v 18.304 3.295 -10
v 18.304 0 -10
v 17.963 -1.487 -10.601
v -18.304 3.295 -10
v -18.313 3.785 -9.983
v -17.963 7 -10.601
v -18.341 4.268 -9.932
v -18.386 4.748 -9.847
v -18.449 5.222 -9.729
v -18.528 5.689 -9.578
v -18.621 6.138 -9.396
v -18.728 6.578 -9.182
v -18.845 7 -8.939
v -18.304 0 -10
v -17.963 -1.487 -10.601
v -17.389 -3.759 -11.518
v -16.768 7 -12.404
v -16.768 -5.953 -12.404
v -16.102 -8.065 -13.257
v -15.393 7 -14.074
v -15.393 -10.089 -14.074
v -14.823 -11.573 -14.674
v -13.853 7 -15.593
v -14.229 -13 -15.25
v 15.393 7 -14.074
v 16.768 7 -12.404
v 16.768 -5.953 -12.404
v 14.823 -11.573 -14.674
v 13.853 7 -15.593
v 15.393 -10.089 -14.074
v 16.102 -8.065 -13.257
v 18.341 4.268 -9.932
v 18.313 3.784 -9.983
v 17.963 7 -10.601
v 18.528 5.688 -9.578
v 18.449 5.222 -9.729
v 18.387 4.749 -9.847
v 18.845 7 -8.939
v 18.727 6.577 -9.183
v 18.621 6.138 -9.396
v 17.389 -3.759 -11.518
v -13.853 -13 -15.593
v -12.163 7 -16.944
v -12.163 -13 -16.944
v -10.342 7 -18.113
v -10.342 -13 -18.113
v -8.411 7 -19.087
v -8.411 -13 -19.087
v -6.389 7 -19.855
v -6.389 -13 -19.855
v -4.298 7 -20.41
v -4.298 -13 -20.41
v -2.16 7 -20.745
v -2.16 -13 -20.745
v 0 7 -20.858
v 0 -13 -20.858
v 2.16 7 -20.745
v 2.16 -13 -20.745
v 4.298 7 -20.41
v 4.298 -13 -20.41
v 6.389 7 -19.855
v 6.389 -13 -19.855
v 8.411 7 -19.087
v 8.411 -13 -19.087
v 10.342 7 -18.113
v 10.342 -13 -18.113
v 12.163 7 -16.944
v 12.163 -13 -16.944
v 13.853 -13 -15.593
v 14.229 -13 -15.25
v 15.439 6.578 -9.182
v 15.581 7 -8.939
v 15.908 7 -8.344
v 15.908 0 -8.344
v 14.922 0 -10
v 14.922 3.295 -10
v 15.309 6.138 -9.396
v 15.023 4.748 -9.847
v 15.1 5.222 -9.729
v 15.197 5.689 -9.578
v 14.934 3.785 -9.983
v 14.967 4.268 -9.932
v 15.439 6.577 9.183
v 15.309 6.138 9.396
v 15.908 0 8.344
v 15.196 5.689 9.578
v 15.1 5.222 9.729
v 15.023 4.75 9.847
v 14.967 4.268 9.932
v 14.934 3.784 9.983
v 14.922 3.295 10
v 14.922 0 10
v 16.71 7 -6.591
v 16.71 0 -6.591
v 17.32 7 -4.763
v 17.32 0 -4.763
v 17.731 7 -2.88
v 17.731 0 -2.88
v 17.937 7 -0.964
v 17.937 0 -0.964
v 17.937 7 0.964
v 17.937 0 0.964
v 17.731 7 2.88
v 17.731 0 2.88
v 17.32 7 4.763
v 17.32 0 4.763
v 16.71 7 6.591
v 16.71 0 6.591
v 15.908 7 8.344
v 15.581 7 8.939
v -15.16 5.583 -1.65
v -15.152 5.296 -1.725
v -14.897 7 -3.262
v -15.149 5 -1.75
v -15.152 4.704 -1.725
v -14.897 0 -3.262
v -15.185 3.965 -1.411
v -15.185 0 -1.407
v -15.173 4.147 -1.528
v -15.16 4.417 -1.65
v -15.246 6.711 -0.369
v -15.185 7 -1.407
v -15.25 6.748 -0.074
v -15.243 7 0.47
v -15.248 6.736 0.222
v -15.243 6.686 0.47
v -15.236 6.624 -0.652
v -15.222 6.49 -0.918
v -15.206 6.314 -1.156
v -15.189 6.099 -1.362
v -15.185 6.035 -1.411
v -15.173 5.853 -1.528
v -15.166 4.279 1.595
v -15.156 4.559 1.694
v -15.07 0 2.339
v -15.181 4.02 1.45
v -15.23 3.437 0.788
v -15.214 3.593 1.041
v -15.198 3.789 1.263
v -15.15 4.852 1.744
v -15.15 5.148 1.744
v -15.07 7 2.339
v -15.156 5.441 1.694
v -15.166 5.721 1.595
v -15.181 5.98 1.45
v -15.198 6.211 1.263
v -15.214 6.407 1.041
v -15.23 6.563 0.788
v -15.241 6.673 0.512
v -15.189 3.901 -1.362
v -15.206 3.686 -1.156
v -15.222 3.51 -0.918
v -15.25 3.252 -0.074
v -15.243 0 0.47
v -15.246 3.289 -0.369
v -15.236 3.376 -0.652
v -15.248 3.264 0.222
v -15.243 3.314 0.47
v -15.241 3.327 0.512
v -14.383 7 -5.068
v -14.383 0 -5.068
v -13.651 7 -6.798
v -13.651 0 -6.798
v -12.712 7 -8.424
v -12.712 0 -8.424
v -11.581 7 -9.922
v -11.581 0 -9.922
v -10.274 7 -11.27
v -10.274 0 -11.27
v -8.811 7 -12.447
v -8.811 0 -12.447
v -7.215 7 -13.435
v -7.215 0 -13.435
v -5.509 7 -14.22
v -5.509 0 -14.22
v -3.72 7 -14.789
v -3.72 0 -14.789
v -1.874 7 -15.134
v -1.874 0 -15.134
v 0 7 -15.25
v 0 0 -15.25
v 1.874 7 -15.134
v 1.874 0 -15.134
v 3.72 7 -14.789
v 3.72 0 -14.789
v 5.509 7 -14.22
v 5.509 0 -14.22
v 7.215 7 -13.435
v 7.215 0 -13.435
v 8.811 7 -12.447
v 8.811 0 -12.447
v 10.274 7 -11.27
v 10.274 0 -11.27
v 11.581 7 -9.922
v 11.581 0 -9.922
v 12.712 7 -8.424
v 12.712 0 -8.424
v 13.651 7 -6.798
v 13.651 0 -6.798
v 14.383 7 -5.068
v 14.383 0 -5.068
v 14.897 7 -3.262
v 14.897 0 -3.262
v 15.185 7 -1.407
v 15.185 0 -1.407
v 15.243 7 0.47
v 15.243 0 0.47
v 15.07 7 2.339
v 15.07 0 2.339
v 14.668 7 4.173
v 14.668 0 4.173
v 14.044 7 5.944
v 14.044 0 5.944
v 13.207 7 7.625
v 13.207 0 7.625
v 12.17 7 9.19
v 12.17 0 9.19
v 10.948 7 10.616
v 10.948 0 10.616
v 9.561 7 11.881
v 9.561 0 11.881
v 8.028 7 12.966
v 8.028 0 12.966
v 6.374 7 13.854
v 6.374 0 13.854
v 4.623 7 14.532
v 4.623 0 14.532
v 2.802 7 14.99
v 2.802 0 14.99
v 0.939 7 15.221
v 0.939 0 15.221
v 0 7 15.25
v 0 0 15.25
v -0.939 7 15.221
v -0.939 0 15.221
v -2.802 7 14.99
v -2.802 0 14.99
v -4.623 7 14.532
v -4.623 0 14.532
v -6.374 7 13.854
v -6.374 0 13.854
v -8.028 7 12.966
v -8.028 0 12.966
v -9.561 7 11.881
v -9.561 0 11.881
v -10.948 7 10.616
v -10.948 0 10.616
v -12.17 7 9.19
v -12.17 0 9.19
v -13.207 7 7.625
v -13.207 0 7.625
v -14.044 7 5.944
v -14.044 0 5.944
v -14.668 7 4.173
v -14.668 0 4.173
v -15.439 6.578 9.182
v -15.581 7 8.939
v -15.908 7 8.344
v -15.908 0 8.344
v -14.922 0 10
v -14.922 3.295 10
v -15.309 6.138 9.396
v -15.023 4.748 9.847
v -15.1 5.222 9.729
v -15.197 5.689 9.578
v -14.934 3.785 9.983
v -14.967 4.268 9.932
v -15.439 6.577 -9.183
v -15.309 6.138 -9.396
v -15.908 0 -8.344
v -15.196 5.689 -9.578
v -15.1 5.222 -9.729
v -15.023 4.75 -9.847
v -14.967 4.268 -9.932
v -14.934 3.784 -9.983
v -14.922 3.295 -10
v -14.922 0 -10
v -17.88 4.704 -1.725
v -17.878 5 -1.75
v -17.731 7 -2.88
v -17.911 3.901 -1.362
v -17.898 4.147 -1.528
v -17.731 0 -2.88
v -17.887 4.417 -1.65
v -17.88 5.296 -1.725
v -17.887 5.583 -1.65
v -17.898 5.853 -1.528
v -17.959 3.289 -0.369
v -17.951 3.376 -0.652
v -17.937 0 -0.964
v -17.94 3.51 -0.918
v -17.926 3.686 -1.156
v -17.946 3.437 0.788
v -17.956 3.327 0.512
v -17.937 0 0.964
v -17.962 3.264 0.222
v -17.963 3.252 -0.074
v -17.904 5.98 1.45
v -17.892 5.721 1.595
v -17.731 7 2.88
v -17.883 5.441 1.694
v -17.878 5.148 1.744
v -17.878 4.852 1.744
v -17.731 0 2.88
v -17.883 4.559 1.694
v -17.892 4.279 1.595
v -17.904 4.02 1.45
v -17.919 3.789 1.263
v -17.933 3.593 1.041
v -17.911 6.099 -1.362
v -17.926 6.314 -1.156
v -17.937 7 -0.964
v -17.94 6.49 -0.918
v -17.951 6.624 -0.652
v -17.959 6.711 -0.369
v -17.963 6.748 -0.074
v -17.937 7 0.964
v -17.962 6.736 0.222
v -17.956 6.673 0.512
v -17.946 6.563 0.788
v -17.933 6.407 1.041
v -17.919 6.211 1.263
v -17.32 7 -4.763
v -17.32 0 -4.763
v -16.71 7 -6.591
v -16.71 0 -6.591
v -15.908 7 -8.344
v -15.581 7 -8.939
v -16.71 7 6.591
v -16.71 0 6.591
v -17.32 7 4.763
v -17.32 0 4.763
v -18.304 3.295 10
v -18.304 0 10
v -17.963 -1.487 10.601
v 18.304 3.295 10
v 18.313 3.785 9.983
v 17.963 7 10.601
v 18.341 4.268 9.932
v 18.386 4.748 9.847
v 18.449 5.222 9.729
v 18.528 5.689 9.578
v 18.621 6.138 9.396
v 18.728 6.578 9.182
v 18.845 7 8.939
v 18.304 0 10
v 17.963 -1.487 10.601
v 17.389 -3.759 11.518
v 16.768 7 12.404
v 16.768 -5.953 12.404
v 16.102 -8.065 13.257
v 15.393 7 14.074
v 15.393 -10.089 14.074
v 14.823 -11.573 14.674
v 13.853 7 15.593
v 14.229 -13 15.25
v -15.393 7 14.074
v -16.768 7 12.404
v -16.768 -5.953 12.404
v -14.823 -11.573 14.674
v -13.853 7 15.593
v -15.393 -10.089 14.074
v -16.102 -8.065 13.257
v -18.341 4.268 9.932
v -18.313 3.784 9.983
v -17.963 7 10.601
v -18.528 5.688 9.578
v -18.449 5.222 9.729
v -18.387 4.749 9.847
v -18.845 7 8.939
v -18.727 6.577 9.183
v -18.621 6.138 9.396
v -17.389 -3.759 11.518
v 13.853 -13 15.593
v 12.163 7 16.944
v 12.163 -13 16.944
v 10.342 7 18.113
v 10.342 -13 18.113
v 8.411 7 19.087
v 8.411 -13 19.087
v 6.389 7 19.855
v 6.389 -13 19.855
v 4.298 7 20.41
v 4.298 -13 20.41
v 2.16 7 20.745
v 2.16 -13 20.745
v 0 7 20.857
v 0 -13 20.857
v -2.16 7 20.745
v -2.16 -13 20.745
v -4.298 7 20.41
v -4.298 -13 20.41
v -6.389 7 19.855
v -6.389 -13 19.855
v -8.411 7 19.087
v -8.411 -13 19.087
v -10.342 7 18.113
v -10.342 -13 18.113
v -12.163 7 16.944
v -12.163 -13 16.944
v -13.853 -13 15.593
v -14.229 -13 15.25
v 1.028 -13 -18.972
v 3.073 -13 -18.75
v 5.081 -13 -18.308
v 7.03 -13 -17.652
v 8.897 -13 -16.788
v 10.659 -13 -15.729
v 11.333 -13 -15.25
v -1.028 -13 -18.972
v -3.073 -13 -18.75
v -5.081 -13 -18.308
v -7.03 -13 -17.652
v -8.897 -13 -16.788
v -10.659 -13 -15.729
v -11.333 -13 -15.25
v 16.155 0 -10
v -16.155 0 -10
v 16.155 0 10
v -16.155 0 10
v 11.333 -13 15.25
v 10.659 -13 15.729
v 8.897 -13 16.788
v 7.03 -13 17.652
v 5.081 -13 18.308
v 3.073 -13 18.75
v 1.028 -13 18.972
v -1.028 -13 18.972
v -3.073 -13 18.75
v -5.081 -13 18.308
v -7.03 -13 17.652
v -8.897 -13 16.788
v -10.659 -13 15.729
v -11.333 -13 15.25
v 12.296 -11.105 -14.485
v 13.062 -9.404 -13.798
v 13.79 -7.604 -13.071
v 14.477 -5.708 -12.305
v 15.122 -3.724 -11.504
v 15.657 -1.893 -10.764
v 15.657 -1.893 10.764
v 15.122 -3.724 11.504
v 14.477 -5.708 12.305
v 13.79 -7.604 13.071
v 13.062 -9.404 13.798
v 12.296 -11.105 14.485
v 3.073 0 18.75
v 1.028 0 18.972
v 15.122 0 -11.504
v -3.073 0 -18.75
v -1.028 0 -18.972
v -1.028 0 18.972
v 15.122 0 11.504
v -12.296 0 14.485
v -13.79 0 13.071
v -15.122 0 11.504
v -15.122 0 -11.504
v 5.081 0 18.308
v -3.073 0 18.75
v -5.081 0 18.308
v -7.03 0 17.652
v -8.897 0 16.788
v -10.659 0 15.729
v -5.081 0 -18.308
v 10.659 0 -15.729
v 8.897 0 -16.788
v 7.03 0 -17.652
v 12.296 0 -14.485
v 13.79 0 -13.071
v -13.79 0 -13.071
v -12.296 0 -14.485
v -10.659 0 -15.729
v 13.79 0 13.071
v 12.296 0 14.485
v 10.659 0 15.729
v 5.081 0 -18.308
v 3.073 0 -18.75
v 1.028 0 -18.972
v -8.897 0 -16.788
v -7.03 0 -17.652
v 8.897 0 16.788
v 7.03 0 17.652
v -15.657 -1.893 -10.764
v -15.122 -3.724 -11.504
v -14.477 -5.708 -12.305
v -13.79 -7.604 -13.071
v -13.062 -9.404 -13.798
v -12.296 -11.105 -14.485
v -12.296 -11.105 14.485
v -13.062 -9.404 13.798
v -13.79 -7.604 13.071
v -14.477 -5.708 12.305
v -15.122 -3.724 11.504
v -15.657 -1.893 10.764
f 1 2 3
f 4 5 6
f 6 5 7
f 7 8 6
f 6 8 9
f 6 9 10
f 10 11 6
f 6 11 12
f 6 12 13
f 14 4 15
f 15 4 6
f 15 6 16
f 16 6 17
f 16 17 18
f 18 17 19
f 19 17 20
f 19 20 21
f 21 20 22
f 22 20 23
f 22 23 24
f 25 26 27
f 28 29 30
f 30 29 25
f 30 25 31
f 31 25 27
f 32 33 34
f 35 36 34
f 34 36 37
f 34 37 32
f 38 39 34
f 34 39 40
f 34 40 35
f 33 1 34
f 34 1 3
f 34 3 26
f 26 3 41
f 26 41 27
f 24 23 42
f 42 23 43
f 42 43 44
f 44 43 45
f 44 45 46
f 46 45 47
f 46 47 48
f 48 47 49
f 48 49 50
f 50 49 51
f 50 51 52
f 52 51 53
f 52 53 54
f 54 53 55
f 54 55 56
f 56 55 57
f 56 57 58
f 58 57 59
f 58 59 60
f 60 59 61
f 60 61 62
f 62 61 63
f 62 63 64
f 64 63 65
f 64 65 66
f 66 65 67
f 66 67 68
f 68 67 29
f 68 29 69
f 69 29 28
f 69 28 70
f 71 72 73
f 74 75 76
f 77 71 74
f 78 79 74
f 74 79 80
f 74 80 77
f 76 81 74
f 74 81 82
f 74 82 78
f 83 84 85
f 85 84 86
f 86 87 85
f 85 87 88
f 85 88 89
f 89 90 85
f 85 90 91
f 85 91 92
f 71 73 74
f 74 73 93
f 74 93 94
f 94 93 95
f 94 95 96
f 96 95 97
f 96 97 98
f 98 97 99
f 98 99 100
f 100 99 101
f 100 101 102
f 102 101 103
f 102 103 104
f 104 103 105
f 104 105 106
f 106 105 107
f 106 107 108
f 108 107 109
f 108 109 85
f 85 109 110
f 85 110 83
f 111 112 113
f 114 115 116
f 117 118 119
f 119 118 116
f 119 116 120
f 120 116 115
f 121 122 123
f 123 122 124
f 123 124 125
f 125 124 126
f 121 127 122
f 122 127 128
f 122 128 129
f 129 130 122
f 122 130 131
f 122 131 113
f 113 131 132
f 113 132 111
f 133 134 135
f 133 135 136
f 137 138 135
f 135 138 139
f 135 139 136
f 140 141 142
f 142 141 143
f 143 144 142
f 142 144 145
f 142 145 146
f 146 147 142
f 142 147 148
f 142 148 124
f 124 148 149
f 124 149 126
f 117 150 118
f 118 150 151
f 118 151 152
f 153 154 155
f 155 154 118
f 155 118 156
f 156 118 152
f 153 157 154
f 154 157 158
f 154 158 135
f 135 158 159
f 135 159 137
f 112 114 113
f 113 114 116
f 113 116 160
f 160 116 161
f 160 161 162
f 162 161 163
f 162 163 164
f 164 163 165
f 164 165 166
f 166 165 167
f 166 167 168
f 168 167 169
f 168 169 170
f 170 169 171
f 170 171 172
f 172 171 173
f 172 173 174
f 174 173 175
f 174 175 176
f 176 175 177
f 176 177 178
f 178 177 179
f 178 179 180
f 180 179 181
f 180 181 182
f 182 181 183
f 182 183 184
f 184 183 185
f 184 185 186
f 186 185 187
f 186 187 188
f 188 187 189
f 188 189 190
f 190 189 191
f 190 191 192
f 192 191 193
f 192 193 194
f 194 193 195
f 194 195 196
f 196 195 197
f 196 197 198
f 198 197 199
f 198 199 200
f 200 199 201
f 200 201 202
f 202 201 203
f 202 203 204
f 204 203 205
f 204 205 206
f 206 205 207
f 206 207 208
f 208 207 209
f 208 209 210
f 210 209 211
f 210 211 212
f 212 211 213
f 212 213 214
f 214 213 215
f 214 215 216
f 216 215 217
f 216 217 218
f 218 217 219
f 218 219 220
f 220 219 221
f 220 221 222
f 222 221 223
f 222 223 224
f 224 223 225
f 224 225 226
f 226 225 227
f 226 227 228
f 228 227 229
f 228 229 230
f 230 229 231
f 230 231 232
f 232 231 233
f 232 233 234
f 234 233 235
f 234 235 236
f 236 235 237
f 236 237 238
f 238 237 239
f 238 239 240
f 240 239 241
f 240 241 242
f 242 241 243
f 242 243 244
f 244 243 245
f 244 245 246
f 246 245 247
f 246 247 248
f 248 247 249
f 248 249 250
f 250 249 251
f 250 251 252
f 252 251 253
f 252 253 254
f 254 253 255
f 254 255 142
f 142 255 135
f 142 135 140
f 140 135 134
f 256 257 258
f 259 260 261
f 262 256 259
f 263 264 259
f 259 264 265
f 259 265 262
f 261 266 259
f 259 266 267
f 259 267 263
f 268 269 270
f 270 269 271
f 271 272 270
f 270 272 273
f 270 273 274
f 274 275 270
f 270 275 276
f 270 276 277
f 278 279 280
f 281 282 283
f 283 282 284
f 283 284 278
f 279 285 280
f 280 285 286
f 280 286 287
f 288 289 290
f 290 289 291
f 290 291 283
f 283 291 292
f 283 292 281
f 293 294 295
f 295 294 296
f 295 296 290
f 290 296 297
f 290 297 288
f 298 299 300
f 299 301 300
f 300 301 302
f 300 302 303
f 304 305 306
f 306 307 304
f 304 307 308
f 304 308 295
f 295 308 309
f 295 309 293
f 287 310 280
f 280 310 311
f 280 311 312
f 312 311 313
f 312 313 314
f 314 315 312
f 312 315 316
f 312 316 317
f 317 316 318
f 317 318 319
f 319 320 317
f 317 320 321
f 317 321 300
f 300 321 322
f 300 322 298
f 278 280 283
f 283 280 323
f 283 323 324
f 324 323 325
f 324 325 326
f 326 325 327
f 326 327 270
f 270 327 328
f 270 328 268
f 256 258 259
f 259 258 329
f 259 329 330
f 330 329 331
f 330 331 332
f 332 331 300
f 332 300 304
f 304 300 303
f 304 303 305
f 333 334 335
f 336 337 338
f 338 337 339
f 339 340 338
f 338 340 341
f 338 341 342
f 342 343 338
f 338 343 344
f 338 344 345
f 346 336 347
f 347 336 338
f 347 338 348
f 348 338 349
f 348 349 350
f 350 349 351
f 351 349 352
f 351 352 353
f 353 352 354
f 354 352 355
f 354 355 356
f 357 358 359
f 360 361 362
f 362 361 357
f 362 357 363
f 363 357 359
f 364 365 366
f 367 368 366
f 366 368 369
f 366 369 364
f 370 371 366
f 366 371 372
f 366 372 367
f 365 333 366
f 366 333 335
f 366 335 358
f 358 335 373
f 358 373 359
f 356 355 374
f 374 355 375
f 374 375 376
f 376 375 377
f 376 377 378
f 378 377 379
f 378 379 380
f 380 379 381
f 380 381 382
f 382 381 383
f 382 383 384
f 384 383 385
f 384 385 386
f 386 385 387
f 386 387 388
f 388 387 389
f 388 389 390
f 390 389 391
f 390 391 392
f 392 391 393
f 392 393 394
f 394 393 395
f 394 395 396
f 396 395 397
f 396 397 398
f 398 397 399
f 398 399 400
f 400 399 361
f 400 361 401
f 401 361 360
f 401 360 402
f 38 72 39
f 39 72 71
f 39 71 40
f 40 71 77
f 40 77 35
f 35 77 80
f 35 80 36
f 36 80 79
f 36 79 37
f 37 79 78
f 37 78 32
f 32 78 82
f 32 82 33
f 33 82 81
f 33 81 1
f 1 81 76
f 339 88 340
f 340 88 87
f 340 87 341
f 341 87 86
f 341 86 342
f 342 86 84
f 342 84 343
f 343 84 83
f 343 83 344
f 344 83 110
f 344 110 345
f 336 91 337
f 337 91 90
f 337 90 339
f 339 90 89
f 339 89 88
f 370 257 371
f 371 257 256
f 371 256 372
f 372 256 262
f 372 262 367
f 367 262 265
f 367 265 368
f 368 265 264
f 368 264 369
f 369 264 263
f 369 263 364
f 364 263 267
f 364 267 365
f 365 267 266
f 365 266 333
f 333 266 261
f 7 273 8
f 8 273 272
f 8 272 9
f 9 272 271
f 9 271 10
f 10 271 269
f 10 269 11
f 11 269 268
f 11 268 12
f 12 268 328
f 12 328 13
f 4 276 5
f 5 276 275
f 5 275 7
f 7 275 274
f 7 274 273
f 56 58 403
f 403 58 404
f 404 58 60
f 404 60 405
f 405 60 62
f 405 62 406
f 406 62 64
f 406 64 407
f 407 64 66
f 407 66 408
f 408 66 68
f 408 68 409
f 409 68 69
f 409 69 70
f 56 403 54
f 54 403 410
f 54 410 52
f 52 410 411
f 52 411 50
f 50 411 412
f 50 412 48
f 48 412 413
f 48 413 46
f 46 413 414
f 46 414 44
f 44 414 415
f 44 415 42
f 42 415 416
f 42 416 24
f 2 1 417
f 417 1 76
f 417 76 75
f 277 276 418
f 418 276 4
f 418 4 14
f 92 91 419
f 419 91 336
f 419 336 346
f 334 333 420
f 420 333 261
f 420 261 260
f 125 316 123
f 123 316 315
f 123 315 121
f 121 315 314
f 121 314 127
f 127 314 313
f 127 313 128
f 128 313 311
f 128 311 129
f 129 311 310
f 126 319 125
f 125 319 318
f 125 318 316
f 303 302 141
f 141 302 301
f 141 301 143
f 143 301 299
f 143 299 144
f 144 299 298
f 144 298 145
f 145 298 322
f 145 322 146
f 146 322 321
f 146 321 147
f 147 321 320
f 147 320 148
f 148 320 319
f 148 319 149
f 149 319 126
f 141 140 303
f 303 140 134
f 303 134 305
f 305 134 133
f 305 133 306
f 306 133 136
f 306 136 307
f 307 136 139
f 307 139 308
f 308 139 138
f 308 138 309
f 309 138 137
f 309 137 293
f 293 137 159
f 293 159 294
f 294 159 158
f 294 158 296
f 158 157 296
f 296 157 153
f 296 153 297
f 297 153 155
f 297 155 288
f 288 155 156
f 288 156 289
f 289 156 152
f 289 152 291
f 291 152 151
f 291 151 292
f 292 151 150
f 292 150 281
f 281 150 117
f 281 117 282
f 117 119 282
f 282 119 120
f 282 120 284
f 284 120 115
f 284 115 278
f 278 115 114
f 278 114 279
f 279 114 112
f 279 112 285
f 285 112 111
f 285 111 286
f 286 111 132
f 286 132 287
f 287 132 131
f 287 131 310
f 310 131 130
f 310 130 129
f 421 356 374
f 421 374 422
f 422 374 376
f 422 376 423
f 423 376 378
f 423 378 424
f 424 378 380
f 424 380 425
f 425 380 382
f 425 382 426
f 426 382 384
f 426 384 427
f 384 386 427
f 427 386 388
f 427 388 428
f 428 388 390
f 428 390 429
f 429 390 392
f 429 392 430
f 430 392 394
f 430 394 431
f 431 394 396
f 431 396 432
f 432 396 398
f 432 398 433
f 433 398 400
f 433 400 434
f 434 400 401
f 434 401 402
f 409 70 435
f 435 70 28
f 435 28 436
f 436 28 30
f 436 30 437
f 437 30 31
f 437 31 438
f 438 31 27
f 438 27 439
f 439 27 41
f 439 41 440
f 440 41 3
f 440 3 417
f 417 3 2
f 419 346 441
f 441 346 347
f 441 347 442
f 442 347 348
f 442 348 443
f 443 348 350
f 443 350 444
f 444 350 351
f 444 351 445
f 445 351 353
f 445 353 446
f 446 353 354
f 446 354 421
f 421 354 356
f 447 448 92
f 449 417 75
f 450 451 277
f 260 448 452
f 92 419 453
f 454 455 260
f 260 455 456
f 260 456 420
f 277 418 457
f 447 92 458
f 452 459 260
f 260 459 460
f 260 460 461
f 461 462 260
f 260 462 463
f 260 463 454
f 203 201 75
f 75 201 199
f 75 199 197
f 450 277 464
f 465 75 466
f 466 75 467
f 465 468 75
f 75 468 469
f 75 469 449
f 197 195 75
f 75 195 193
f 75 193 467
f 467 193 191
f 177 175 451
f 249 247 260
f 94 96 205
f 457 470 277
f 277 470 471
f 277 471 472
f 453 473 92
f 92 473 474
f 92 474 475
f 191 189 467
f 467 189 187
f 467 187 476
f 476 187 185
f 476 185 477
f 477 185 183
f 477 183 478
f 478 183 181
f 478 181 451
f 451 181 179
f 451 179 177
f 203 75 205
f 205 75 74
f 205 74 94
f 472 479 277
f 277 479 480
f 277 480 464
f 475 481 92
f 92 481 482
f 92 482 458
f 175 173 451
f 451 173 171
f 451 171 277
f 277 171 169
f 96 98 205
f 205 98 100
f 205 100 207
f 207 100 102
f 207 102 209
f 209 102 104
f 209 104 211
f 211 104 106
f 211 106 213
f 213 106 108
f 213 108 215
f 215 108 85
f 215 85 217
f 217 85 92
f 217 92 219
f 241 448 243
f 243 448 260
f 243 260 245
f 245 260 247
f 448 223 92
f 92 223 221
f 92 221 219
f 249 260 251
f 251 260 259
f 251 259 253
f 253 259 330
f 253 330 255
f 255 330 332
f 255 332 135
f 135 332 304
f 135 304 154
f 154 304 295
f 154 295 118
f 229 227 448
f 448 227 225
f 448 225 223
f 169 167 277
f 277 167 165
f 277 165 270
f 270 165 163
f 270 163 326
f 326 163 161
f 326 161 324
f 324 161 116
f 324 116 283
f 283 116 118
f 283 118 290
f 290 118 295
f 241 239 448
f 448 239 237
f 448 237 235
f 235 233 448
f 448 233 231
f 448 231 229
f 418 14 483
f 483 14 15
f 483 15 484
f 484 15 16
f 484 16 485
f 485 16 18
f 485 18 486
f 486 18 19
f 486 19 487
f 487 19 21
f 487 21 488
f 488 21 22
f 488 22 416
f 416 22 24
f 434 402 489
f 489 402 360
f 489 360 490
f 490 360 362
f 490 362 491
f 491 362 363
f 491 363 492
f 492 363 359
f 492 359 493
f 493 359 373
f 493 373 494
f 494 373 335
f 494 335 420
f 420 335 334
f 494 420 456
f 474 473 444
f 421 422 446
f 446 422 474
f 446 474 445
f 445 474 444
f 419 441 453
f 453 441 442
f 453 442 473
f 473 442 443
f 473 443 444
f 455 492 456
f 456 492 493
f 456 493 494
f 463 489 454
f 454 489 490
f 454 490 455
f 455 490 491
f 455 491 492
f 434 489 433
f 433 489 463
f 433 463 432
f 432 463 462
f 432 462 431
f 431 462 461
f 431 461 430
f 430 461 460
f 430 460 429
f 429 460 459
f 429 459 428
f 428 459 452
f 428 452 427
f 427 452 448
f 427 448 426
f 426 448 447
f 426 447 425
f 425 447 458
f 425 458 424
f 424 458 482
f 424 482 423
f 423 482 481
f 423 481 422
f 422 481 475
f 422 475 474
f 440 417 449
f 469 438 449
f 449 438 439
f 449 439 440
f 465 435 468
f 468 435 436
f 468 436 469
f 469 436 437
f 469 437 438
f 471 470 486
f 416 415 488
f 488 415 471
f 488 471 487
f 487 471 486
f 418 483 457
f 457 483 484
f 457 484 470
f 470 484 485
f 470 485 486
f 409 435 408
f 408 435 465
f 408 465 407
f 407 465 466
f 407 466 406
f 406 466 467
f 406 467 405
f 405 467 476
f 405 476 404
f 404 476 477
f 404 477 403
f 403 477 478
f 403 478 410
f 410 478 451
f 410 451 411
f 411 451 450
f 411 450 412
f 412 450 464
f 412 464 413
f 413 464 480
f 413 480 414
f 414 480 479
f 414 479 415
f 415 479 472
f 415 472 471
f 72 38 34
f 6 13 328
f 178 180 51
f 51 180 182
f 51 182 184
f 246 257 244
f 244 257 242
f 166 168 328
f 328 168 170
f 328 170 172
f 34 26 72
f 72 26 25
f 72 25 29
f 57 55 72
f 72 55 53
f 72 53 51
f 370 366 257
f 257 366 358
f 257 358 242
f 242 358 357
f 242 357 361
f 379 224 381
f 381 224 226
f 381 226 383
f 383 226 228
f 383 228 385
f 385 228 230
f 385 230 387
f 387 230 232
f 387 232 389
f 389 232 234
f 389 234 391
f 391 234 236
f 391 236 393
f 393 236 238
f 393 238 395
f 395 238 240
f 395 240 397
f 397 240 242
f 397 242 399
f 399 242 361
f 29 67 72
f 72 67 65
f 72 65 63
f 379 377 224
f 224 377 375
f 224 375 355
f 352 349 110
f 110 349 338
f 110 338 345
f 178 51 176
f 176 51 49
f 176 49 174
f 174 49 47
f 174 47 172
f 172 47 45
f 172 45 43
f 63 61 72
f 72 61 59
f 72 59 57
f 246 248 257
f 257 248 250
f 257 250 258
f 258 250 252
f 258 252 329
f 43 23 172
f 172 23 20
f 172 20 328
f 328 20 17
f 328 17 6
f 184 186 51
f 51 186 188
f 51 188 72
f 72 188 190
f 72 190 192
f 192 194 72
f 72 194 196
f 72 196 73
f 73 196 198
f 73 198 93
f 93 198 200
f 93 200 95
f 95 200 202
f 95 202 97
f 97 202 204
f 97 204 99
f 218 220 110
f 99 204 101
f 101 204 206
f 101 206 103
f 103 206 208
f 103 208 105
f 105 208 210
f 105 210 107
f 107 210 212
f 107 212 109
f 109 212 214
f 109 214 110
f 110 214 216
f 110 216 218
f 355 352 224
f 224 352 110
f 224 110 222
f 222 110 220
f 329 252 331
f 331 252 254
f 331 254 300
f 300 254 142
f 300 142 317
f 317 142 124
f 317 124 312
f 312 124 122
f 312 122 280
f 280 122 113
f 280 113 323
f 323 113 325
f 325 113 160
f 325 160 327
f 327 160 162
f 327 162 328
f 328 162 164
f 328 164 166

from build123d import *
from build123d.topology import SkipClean

# Parameters (mm, degrees)
ESQUISSE1_R                   = 17.963
ESQUISSE1_R_2                 = 15.25
BOSS_EXTRU_1_DEPTH            = 40.144083067
CHANFREIN1_SIZE               = 2
ESQUISSE7_R                   = 17.963
BOSS_EXTRU_4_DEPTH            = 25
ESQUISSE8_R                   = 15.25
ENL_V_MAT_EXTRU_3_DEPTH       = 48.506695773
BOSS_EXTRU_5_DEPTH            = 130
ENL_V_MAT_EXTRU_8_DEPTH       = 134.304428503
ENL_V_MAT_EXTRU_8_DEPTH_BACK  = 134.304428503
ENL_V_MAT_EXTRU_9_DEPTH       = 130
ENL_V_MAT_EXTRU_9_DEPTH_BACK  = 130
ESQUISSE21_R                  = 17.963
ESQUISSE21_R_2                = 15.25
BOSS_EXTRU_6_DEPTH            = 65.144083
ESQUISSE22_R                  = 1.75
ENL_V_MAT_EXTRU_10_DEPTH      = 64
ESQUISSE23_R                  = 1.75
ENL_V_MAT_EXTRU_11_DEPTH      = 64
R_P_TITION_LIN_AIRE2_COUNT    = 2
R_P_TITION_LIN_AIRE2_PITCH    = 16
CONG_2_R                      = 7
ESQUISSE11_R                  = 1.5
ESQUISSE24_R                  = 20.85750055
BOSS_EXTRU_10_DEPTH           = 13
ESQUISSE26_R                  = 15.25
ENL_V_MAT_EXTRU_12_DEPTH      = 134.304428631
ENL_V_MAT_EXTRU_13_DEPTH      = 134.304428631
ENL_V_MAT_EXTRU_13_DEPTH_BACK = 134.304428631
ESQUISSE29_R                  = 19
ENL_V_MAT_EXTRU_14_DEPTH      = 13
ESQUISSE31_R                  = 30.102182373
ENL_V_MAT_EXTRU_15_DEPTH      = 123


with BuildPart() as part:
    # Esquisse1 → Boss.-Extru.1 (new body)
    with BuildSketch(Plane(origin=(0, 0, 0), x_dir=(1, 0, 0), z_dir=(0, 1, 0))):
        with Locations(Location((0, 0, 0), (0, 0, 270))):
            Circle(ESQUISSE1_R)
        with Locations(Location((0, 0, 0), (0, 0, 270))):
            Circle(ESQUISSE1_R_2, mode=Mode.SUBTRACT)
    extrude(amount=BOSS_EXTRU_1_DEPTH)

    # Chanfrein1
    chanfrein1_edges = [part.edges().sort_by_distance(p)[0] for p in [
        (0, 0, -17.963),
    ]]
    chamfer(chanfrein1_edges, length=CHANFREIN1_SIZE)

    # Esquisse7 → Boss.-Extru.4 (add)
    with BuildSketch(Plane(origin=(0, 40.144083067, 0), x_dir=(1, 0, 0), z_dir=(0, 1, 0))):
        with Locations(Location((0, 0, 0), (0, 0, 270))):
            Circle(ESQUISSE7_R)
    extrude(amount=BOSS_EXTRU_4_DEPTH)

    # Esquisse8 → Enlèv. mat.-Extru.3 (cut, through all)
    with BuildSketch(Plane.XZ.offset(-40.144083067)):
        with Locations(Location((0, 0, 0), (0, 0, 270))):
            Circle(ESQUISSE8_R)
    extrude(amount=-ENL_V_MAT_EXTRU_3_DEPTH, mode=Mode.SUBTRACT)

    # Esquisse10 → Boss.-Extru.5 (add)
    with BuildSketch(Plane(origin=(0, 0, 0), x_dir=(1, 0, 0), z_dir=(0, 1, 0))):
        with BuildLine():
            Line((20.85750055, 0), (17.963, 0))
            ThreePointArc((17.963, 0), (0, -17.963), (-17.963, 0))
            Line((-17.963, 0), (-20.85750055, 0))
            ThreePointArc((-20.85750055, 0), (0, -20.85750055), (20.85750055, 0))
        make_face()
    boss_extru_5 = extrude(amount=BOSS_EXTRU_5_DEPTH)

    # Symétrie3: Boss.-Extru.5 across plane
    with SkipClean():  # the faces are left unmerged after this step: merging them gives an invalid solid
        add(boss_extru_5.mirror(Plane.XY))

    # Esquisse18 → Enlèv. mat.-Extru.8 (cut, two sides: drawn at the far end of the back side and taken through both)
    with SkipClean():  # the faces are left unmerged after this step: merging them gives an invalid solid
        with BuildSketch(Plane(origin=(0, 0, 0), x_dir=(0, 0, -1), z_dir=(1, 0, 0)).offset(-ENL_V_MAT_EXTRU_8_DEPTH_BACK)):
            Polygon((-10, 121.154286311), (-13.911254963, 130), (13.911254963, 130), (10, 121.154286311), (10, 61.262819373), (-10, 61.262819373), align=None)
        extrude(amount=ENL_V_MAT_EXTRU_8_DEPTH + ENL_V_MAT_EXTRU_8_DEPTH_BACK, mode=Mode.SUBTRACT)

    # Esquisse20 → Enlèv. mat.-Extru.9 (cut, two sides: drawn at the far end of the back side and taken through both)
    with BuildSketch(Plane(origin=(0, 0, 0), x_dir=(0, 0, -1), z_dir=(1, 0, 0)).offset(-ENL_V_MAT_EXTRU_9_DEPTH_BACK)):
        Polygon((-5, 61.262819373), (5, 61.262819373), (5, 10.002819373), (10, 10.002819373), (10, 0), (-10, 0), (-10, 10.002819373), (-5, 10.002819373), align=None)
    extrude(amount=ENL_V_MAT_EXTRU_9_DEPTH + ENL_V_MAT_EXTRU_9_DEPTH_BACK, mode=Mode.SUBTRACT)


with BuildPart() as enl_v_mat_extru_9_piece_1:
    # of the separate pieces the step leaves, piece 1, a body of its own (enl_v_mat_extru_9_pieces)
    add(part.part.solids().sort_by_distance((-18.303970313, 0, -10))[0])



with BuildPart() as enl_v_mat_extru_9_piece_2:
    # of the separate pieces the step leaves, piece 2, a body of its own (enl_v_mat_extru_9_pieces)
    add(part.part.solids().sort_by_distance((-15.540666477, 130, 13.911254963))[0])


with BuildPart() as enl_v_mat_extru_9_piece_1_1:
    with SkipClean():  # the faces are left unmerged after this step: merging them gives an invalid solid
        add(enl_v_mat_extru_9_piece_1.part)

        add(enl_v_mat_extru_9_piece_2.part)  # Boss.-Extru.6 merges Enlèv. mat.-Extru.9 piece 2
        # Esquisse21 → Boss.-Extru.6 (add)
        with BuildSketch(Plane(origin=(0, 0, 0), x_dir=(1, 0, 0), z_dir=(0, 1, 0))):
            Circle(ESQUISSE21_R)
            with Locations(Location((0, 0, 0), (0, 0, 90))):
                Circle(ESQUISSE21_R_2, mode=Mode.SUBTRACT)
        extrude(amount=BOSS_EXTRU_6_DEPTH)

    # Esquisse22 → Enlèv. mat.-Extru.10 (cut)
    with SkipClean():  # the faces are left unmerged after this step: merging them gives an invalid solid
        with BuildSketch(Plane(origin=(0, 0, 0), x_dir=(0, 0, -1), z_dir=(1, 0, 0))):
            with Locations((0, 5)):
                Circle(ESQUISSE22_R)
        enl_v_mat_extru_10 = extrude(amount=-ENL_V_MAT_EXTRU_10_DEPTH, mode=Mode.SUBTRACT)

    # Esquisse23 → Enlèv. mat.-Extru.11 (cut)
    with SkipClean():  # the faces are left unmerged after this step: merging them gives an invalid solid
        with BuildSketch(Plane(origin=(0, 0, 0), x_dir=(0, 0, -1), z_dir=(1, 0, 0))):
            with Locations(Location((0, 13.3, 0), (0, 0, 180))):
                Circle(ESQUISSE23_R)
        extrude(amount=ENL_V_MAT_EXTRU_11_DEPTH, mode=Mode.SUBTRACT)

    # Répétition linéaire2: Enlèv. mat.-Extru.10 ×2
    with SkipClean():  # the faces are left unmerged after this step: merging them gives an invalid solid
        with Locations(*[(0, i * R_P_TITION_LIN_AIRE2_PITCH, 0) for i in range(1, R_P_TITION_LIN_AIRE2_COUNT)]):
            add(enl_v_mat_extru_10, mode=Mode.SUBTRACT)

    # Congé2
    # the kernel refuses this fillet: 7 mm, written as the material it adds along each edge
    with BuildSketch(Plane(origin=(-35.074480144, 61.262819373, 10), x_dir=(0, 1, 0), z_dir=(1, 0, 0))) as cong_2_piece_1_section:
        with BuildLine():
            CenterArc((6.708203932, -7), CONG_2_R, 90, 73.398450401)
            Line((0, -5), (-0.134164079, -4.96))
            ThreePointArc((-0.134164079, -4.96), (-0.14, -2.5), (-0.14, 0))
            Line((-0.14, 0), (0, 0.14))
            Line((0, 0.14), (6.708203932, 0.14))
            Line((6.708203932, 0.14), (6.708203932, 0))
        make_face()
    cong_2_piece_1 = extrude(amount=36.922879903, mode=Mode.PRIVATE)
    cong_2_piece_1 = cong_2_piece_1 & Plane(origin=(0, 62.883538638, 0), x_dir=(-1, 0, 0), z_dir=(0, -1, 0)) * Cylinder(20.85750055, 101, mode=Mode.PRIVATE)
    cong_2_piece_1 = cong_2_piece_1 - Plane(origin=(0, 62.883538638, 0), x_dir=(1, 0, 0), z_dir=(0, -1, 0)) * Cylinder(17.963, 101, mode=Mode.PRIVATE)
    add(cong_2_piece_1)
    with BuildSketch(Plane(origin=(-1.848399759, 61.262819373, 10), x_dir=(0, 0, -1), z_dir=(1, 0, 0))) as cong_2_piece_2_section:
        with BuildLine():
            CenterArc((7, 6.708203932), CONG_2_R, 180, 73.398450401)
            Line((0, 6.708203932), (-0.14, 6.708203932))
            Line((-0.14, 6.708203932), (-0.14, 0))
            Line((-0.14, 0), (0, -0.14))
            ThreePointArc((0, -0.14), (2.5, -0.14), (4.96, -0.134164079))
            Line((4.96, -0.134164079), (5, 0))
        make_face()
    cong_2_piece_2 = extrude(amount=36.922879903, mode=Mode.PRIVATE)
    cong_2_piece_2 = cong_2_piece_2 & Plane(origin=(0, 62.883538658, 0), x_dir=(-1, 0, 0), z_dir=(0, -1, 0)) * Cylinder(20.85750055, 101, mode=Mode.PRIVATE)
    cong_2_piece_2 = cong_2_piece_2 - Plane(origin=(0, 62.883538658, 0), x_dir=(1, 0, 0), z_dir=(0, -1, 0)) * Cylinder(17.963, 101, mode=Mode.PRIVATE)
    add(cong_2_piece_2)
    with BuildSketch(Plane(origin=(-1.848399759, 61.262819373, -10), x_dir=(0, 0, 1), z_dir=(1, 0, 0))) as cong_2_piece_3_section:
        with BuildLine():
            CenterArc((7, -6.708203932), CONG_2_R, 106.601549599, 73.398450401)
            Line((0, -6.708203932), (-0.14, -6.708203932))
            Line((-0.14, -6.708203932), (-0.14, 0))
            Line((-0.14, 0), (0, 0.14))
            ThreePointArc((0, 0.14), (2.5, 0.14), (4.96, 0.134164079))
            Line((4.96, 0.134164079), (5, 0))
        make_face()
    cong_2_piece_3 = extrude(amount=36.922879903, mode=Mode.PRIVATE)
    cong_2_piece_3 = cong_2_piece_3 & Plane(origin=(0, 62.883538748, 0), x_dir=(-1, 0, 0), z_dir=(0, -1, 0)) * Cylinder(20.85750055, 101, mode=Mode.PRIVATE)
    cong_2_piece_3 = cong_2_piece_3 - Plane(origin=(0, 62.883538748, 0), x_dir=(1, 0, 0), z_dir=(0, -1, 0)) * Cylinder(17.963, 101, mode=Mode.PRIVATE)
    add(cong_2_piece_3)
    with BuildSketch(Plane(origin=(-35.074480144, 61.262819373, -10), x_dir=(0, 0, 1), z_dir=(1, 0, 0))) as cong_2_piece_4_section:
        with BuildLine():
            CenterArc((7, -6.708203932), CONG_2_R, 106.601549599, 73.398450401)
            Line((0, -6.708203932), (-0.14, -6.708203932))
            Line((-0.14, -6.708203932), (-0.14, 0))
            Line((-0.14, 0), (0, 0.14))
            ThreePointArc((0, 0.14), (2.5, 0.14), (4.96, 0.134164079))
            Line((4.96, 0.134164079), (5, 0))
        make_face()
    cong_2_piece_4 = extrude(amount=36.922879903, mode=Mode.PRIVATE)
    cong_2_piece_4 = cong_2_piece_4 & Plane(origin=(0, 62.883538616, 0), x_dir=(-1, 0, 0), z_dir=(0, -1, 0)) * Cylinder(20.85750055, 101, mode=Mode.PRIVATE)
    cong_2_piece_4 = cong_2_piece_4 - Plane(origin=(0, 62.883538616, 0), x_dir=(1, 0, 0), z_dir=(0, -1, 0)) * Cylinder(17.963, 101, mode=Mode.PRIVATE)
    add(cong_2_piece_4)
    with BuildSketch(Plane(origin=(1.848399759, 10.002819373, -10), x_dir=(0, -1, 0), z_dir=(-1, 0, 0))) as cong_2_piece_5_section:
        with BuildLine():
            CenterArc((6.708203932, 7), CONG_2_R, 196.601549599, 73.398450401)
            Line((0, 5), (-0.134164079, 4.96))
            ThreePointArc((-0.134164079, 4.96), (-0.14, 2.5), (-0.14, 0))
            Line((-0.14, 0), (0, -0.14))
            Line((0, -0.14), (6.708203932, -0.14))
            Line((6.708203932, -0.14), (6.708203932, 0))
        make_face()
    cong_2_piece_5 = extrude(amount=36.922879903, mode=Mode.PRIVATE)
    cong_2_piece_5 = cong_2_piece_5 - Plane(origin=(0, 8.382100154, 0), x_dir=(1, 0, 0), z_dir=(0, -1, 0)) * Cylinder(17.963, 101, mode=Mode.PRIVATE)
    cong_2_piece_5 = cong_2_piece_5 & Plane(origin=(0, 8.382100154, 0), x_dir=(-1, 0, 0), z_dir=(0, -1, 0)) * Cylinder(20.85750055, 101, mode=Mode.PRIVATE)
    add(cong_2_piece_5)
    with BuildSketch(Plane(origin=(35.074480144, 10.002819373, -10), x_dir=(0, -1, 0), z_dir=(-1, 0, 0))) as cong_2_piece_6_section:
        with BuildLine():
            CenterArc((6.708203932, 7), CONG_2_R, 196.601549599, 73.398450401)
            Line((0, 5), (-0.134164079, 4.96))
            ThreePointArc((-0.134164079, 4.96), (-0.14, 2.5), (-0.14, 0))
            Line((-0.14, 0), (0, -0.14))
            Line((0, -0.14), (6.708203932, -0.14))
            Line((6.708203932, -0.14), (6.708203932, 0))
        make_face()
    cong_2_piece_6 = extrude(amount=36.922879903, mode=Mode.PRIVATE)
    cong_2_piece_6 = cong_2_piece_6 - Plane(origin=(0, 8.38209993, 0), x_dir=(1, 0, 0), z_dir=(0, -1, 0)) * Cylinder(17.963, 101, mode=Mode.PRIVATE)
    cong_2_piece_6 = cong_2_piece_6 & Plane(origin=(0, 8.38209993, 0), x_dir=(-1, 0, 0), z_dir=(0, -1, 0)) * Cylinder(20.85750055, 101, mode=Mode.PRIVATE)
    add(cong_2_piece_6)
    with BuildSketch(Plane(origin=(-1.848399759, 10.002819373, 10), x_dir=(0, -1, 0), z_dir=(1, 0, 0))) as cong_2_piece_7_section:
        with BuildLine():
            CenterArc((6.708203932, 7), CONG_2_R, 196.601549599, 73.398450401)
            Line((0, 5), (-0.134164079, 4.96))
            ThreePointArc((-0.134164079, 4.96), (-0.14, 2.5), (-0.14, 0))
            Line((-0.14, 0), (0, -0.14))
            Line((0, -0.14), (6.708203932, -0.14))
            Line((6.708203932, -0.14), (6.708203932, 0))
        make_face()
    cong_2_piece_7 = extrude(amount=36.922879903, mode=Mode.PRIVATE)
    cong_2_piece_7 = cong_2_piece_7 & Plane(origin=(0, 8.382100073, 0), x_dir=(-1, 0, 0), z_dir=(0, -1, 0)) * Cylinder(20.85750055, 101, mode=Mode.PRIVATE)
    cong_2_piece_7 = cong_2_piece_7 - Plane(origin=(0, 8.382100073, 0), x_dir=(1, 0, 0), z_dir=(0, -1, 0)) * Cylinder(17.963, 101, mode=Mode.PRIVATE)
    add(cong_2_piece_7)
    with BuildSketch(Plane(origin=(-35.074480144, 10.002819373, 10), x_dir=(0, 0, -1), z_dir=(1, 0, 0))) as cong_2_piece_8_section:
        with BuildLine():
            CenterArc((7, -6.708203932), CONG_2_R, 106.601549599, 73.398450401)
            Line((0, -6.708203932), (-0.14, -6.708203932))
            Line((-0.14, -6.708203932), (-0.14, 0))
            Line((-0.14, 0), (0, 0.14))
            ThreePointArc((0, 0.14), (2.5, 0.14), (4.96, 0.134164079))
            Line((4.96, 0.134164079), (5, 0))
        make_face()
    cong_2_piece_8 = extrude(amount=36.922879903, mode=Mode.PRIVATE)
    cong_2_piece_8 = cong_2_piece_8 & Plane(origin=(0, 8.382100055, 0), x_dir=(-1, 0, 0), z_dir=(0, -1, 0)) * Cylinder(20.85750055, 101, mode=Mode.PRIVATE)
    cong_2_piece_8 = cong_2_piece_8 - Plane(origin=(0, 8.382100055, 0), x_dir=(1, 0, 0), z_dir=(0, -1, 0)) * Cylinder(17.963, 101, mode=Mode.PRIVATE)
    add(cong_2_piece_8)

    # Balayage3: sweep along a curve in space
    with BuildLine() as balayage3_path:
        ThreePointArc((0, 65.144083067, -15.25), (10.783378413, 65.144083067, -10.783378413), (15.25, 65.144083067, 0))
        ThreePointArc((15.25, 65.144083067, 0), (10.783378413, 65.144083067, 10.783378413), (0, 65.144083067, 15.25))
        ThreePointArc((0, 65.144083067, 15.25), (-10.783378413, 65.144083067, 10.783378413), (-15.25, 65.144083067, 0))
        ThreePointArc((-15.25, 65.144083067, 0), (-10.783378413, 65.144083067, -10.783378413), (0, 65.144083067, -15.25))
    # Esquisse11 → Balayage3 (sweep)
    with BuildSketch(Plane(origin=(0, 0, 0), x_dir=(0, 0, -1), z_dir=(1, 0, 0))):
        with Locations((17.963, 65.144083067)):
            Circle(ESQUISSE11_R)
    sweep(path=balayage3_path.line)

    # Esquisse24 → Boss.-Extru.10 (add)
    with BuildSketch(Plane(origin=(0, 0, 0), x_dir=(1, 0, 0), z_dir=(0, 1, 0))):
        with Locations(Location((0, 0, 0), (0, 0, 41.83337037))):
            Circle(ESQUISSE24_R)
    extrude(amount=-BOSS_EXTRU_10_DEPTH)

    # Esquisse26 → Enlèv. mat.-Extru.12 (cut, through all)
    with SkipClean():  # the faces are left unmerged after this step: merging them gives an invalid solid
        with BuildSketch(Plane(origin=(0, 0, 0), x_dir=(1, 0, 0), z_dir=(0, 1, 0))):
            with Locations(Location((0, 0, 0), (0, 0, 90))):
                Circle(ESQUISSE26_R)
        extrude(amount=-ENL_V_MAT_EXTRU_12_DEPTH, mode=Mode.SUBTRACT)
    add(enl_v_mat_extru_9_piece_1_1.part.scale(1), mode=Mode.REPLACE)  # the faces are merged on a copy

    # Esquisse27 → Enlèv. mat.-Extru.13 (cut, two sides: drawn at the far end of the back side and taken through both)
    with SkipClean():  # the faces are left unmerged after this step: merging them gives an invalid solid
        with BuildSketch(Plane(origin=(0, 0, 0), x_dir=(0, 0, -1), z_dir=(1, 0, 0)).offset(-ENL_V_MAT_EXTRU_13_DEPTH_BACK)):
            Polygon((-10, 0), (-15.25, -13), (15.25, -13), (10, 0), align=None)
        extrude(amount=ENL_V_MAT_EXTRU_13_DEPTH + ENL_V_MAT_EXTRU_13_DEPTH_BACK, mode=Mode.SUBTRACT)

    # Esquisse29 → Enlèv. mat.-Extru.14 (cut)
    with BuildSketch(Plane(origin=(0, 0, 0), x_dir=(1, 0, 0), z_dir=(0, 1, 0))):
        Circle(ESQUISSE29_R)
    extrude(amount=-ENL_V_MAT_EXTRU_14_DEPTH, mode=Mode.SUBTRACT)

    # Esquisse31 → Enlèv. mat.-Extru.15 (cut)
    with BuildSketch(Plane(origin=(0, 130, 0), x_dir=(1, 0, 0), z_dir=(0, 1, 0))):
        Circle(ESQUISSE31_R)
    extrude(amount=-ENL_V_MAT_EXTRU_15_DEPTH, mode=Mode.SUBTRACT)


solid = enl_v_mat_extru_9_piece_1_1.part
